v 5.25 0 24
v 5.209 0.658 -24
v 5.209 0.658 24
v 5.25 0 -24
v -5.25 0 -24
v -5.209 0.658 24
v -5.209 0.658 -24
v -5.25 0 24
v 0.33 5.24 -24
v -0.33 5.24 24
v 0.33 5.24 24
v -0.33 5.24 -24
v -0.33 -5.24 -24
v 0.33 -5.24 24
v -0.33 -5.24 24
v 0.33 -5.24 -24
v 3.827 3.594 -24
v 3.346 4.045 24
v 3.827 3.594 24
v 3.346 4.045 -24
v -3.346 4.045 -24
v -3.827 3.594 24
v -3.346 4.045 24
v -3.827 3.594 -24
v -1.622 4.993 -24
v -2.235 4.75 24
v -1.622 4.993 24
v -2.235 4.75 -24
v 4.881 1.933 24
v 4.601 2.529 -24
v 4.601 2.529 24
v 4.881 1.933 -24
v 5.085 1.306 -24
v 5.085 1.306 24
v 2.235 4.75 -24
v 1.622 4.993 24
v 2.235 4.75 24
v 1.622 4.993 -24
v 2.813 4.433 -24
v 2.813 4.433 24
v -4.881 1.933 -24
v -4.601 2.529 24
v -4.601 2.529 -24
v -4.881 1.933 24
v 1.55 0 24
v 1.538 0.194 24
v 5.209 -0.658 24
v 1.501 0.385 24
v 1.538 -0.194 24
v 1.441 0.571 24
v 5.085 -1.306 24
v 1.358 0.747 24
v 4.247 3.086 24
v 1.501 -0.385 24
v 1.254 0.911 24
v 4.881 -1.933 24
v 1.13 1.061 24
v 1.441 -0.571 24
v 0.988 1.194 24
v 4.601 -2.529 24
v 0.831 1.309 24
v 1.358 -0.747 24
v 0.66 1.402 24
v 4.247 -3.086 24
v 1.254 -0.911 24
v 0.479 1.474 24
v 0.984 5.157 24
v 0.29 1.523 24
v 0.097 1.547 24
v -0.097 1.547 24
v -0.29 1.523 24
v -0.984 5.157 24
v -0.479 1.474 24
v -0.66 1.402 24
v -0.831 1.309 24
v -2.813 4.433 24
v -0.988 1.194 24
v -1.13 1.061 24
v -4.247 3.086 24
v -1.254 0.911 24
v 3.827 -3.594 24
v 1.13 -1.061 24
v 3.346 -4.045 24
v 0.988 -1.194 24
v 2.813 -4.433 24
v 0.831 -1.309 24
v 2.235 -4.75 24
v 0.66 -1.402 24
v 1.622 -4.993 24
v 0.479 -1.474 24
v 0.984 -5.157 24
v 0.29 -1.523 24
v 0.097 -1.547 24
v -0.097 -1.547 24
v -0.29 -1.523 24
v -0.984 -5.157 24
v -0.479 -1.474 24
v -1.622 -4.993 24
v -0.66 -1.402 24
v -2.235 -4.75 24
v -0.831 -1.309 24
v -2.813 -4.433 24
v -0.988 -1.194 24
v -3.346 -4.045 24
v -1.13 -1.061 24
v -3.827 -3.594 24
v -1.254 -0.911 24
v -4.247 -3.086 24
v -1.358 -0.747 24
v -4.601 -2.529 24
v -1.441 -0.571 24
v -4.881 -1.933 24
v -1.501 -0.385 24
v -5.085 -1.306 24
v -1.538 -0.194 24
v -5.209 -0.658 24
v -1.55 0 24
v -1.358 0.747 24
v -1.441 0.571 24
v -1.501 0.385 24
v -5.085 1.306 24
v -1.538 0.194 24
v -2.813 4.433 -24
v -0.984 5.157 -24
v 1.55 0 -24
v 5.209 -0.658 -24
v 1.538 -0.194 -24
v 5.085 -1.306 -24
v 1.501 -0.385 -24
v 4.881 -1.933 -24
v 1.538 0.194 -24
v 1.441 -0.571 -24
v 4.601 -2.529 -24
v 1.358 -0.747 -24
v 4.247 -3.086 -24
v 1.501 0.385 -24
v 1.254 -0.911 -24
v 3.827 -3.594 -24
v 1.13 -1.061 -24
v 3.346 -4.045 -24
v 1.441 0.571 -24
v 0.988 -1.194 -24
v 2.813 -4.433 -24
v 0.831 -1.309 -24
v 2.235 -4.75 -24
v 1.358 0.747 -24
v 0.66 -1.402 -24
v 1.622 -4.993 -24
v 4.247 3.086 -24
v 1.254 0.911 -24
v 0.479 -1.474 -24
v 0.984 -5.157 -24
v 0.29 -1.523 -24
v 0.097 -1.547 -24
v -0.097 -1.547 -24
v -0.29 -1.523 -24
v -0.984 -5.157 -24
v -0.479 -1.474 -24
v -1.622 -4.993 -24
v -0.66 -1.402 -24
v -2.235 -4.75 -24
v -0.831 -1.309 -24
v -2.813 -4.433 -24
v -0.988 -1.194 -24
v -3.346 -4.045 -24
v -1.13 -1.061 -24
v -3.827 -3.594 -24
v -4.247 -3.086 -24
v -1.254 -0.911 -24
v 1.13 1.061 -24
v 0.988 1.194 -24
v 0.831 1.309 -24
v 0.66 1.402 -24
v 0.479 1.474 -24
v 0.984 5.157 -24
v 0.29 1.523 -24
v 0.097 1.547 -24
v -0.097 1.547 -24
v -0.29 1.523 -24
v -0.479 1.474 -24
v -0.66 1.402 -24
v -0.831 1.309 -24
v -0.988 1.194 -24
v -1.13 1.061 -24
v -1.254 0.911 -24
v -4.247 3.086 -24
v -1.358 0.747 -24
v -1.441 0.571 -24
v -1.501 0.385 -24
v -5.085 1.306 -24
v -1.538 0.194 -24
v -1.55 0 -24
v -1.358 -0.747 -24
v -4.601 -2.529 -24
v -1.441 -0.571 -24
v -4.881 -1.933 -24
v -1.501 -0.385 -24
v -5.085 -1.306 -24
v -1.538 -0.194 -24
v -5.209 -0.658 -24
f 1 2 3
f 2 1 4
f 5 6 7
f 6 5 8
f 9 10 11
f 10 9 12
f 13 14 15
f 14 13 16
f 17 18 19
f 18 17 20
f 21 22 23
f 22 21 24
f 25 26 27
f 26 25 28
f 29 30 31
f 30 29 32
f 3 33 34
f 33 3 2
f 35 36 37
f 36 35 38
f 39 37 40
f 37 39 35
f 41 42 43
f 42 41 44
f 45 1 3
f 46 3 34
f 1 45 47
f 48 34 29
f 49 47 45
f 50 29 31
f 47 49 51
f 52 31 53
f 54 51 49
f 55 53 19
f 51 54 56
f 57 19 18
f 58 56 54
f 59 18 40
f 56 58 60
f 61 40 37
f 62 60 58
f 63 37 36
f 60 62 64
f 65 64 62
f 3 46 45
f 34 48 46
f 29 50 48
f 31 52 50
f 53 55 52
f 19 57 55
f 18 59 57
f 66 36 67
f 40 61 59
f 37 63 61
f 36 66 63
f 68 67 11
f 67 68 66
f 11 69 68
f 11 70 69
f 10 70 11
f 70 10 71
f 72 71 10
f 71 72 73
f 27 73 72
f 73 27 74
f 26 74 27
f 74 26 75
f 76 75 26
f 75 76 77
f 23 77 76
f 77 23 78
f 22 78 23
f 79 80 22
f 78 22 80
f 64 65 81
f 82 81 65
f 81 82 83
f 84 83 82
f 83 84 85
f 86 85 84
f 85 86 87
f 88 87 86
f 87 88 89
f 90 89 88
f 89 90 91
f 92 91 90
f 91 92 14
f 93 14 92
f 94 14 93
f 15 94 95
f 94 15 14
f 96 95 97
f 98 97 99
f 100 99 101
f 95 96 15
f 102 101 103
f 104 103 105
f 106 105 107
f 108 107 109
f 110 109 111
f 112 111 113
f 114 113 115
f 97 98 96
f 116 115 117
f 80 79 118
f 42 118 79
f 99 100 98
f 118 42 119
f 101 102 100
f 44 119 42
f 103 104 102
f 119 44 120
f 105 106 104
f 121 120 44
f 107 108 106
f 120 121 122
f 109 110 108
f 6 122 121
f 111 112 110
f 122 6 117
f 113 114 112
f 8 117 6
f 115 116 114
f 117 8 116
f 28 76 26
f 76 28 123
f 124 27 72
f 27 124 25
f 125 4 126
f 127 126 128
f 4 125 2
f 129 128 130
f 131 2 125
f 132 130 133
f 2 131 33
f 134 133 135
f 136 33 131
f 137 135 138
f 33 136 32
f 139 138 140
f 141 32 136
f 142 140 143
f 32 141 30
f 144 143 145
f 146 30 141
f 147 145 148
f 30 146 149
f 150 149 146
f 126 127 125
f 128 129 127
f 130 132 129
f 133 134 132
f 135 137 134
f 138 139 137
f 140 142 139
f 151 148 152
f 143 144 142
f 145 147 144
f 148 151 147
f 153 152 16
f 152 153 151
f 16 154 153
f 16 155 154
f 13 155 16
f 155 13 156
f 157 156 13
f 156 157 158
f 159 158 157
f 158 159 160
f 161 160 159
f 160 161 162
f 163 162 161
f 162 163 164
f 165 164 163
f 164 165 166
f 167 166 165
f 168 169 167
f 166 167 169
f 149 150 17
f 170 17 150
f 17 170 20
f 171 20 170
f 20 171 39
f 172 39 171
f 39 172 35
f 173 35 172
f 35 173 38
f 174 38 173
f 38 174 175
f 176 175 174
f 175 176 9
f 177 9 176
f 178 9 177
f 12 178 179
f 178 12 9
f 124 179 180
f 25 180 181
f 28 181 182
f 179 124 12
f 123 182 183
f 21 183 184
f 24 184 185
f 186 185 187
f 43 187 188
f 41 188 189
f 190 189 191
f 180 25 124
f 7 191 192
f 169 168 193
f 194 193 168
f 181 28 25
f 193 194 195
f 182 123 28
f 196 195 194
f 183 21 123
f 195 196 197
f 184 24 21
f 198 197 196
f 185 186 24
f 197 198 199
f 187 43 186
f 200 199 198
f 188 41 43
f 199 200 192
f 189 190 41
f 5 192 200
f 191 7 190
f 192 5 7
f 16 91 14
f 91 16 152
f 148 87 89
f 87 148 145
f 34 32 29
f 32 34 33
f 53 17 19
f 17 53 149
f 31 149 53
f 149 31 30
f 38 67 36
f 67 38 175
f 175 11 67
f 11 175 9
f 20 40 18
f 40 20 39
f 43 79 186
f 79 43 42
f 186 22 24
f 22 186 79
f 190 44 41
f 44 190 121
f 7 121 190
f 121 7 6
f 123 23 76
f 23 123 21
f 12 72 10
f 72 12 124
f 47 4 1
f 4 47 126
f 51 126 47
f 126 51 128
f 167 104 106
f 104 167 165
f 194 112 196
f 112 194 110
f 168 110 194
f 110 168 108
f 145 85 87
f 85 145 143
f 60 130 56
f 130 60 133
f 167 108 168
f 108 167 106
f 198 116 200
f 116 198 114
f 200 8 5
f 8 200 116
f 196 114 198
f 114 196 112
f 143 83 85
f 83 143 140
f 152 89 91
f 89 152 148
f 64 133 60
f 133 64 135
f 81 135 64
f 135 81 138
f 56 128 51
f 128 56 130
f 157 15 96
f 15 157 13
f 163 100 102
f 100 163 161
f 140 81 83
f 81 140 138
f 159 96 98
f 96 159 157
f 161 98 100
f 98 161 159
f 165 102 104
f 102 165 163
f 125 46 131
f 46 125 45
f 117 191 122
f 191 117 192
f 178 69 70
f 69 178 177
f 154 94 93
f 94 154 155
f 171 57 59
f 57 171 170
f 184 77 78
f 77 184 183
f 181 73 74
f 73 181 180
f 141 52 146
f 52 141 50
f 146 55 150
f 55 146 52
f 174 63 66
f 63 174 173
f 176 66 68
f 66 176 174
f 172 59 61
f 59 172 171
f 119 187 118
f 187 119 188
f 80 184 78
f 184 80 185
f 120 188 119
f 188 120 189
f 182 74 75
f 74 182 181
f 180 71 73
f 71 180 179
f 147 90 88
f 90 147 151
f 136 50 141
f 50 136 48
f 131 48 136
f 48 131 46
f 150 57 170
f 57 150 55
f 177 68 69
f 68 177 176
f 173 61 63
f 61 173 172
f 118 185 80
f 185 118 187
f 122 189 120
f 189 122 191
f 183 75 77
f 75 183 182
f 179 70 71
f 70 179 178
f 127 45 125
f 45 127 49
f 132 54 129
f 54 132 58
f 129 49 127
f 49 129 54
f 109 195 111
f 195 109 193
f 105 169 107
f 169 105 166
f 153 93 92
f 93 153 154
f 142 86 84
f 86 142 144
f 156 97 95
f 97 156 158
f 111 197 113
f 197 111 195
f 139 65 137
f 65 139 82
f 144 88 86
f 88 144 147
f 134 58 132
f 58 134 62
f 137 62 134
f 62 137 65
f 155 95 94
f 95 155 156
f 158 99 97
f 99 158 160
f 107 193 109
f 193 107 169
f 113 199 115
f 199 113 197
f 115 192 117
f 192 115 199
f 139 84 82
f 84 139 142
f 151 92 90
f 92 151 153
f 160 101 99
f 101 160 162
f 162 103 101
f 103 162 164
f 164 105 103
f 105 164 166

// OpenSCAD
$fn = 50;


difference() {
	union() {
		translate(v = [0, 0, -24.0000000000]) {
			cylinder(h = 48, r = 5.2500000000);
		}
	}
	union() {
		translate(v = [0, 0, -100.0000000000]) {
			cylinder(h = 200, r = 1.5500000000);
		}
	}
}
